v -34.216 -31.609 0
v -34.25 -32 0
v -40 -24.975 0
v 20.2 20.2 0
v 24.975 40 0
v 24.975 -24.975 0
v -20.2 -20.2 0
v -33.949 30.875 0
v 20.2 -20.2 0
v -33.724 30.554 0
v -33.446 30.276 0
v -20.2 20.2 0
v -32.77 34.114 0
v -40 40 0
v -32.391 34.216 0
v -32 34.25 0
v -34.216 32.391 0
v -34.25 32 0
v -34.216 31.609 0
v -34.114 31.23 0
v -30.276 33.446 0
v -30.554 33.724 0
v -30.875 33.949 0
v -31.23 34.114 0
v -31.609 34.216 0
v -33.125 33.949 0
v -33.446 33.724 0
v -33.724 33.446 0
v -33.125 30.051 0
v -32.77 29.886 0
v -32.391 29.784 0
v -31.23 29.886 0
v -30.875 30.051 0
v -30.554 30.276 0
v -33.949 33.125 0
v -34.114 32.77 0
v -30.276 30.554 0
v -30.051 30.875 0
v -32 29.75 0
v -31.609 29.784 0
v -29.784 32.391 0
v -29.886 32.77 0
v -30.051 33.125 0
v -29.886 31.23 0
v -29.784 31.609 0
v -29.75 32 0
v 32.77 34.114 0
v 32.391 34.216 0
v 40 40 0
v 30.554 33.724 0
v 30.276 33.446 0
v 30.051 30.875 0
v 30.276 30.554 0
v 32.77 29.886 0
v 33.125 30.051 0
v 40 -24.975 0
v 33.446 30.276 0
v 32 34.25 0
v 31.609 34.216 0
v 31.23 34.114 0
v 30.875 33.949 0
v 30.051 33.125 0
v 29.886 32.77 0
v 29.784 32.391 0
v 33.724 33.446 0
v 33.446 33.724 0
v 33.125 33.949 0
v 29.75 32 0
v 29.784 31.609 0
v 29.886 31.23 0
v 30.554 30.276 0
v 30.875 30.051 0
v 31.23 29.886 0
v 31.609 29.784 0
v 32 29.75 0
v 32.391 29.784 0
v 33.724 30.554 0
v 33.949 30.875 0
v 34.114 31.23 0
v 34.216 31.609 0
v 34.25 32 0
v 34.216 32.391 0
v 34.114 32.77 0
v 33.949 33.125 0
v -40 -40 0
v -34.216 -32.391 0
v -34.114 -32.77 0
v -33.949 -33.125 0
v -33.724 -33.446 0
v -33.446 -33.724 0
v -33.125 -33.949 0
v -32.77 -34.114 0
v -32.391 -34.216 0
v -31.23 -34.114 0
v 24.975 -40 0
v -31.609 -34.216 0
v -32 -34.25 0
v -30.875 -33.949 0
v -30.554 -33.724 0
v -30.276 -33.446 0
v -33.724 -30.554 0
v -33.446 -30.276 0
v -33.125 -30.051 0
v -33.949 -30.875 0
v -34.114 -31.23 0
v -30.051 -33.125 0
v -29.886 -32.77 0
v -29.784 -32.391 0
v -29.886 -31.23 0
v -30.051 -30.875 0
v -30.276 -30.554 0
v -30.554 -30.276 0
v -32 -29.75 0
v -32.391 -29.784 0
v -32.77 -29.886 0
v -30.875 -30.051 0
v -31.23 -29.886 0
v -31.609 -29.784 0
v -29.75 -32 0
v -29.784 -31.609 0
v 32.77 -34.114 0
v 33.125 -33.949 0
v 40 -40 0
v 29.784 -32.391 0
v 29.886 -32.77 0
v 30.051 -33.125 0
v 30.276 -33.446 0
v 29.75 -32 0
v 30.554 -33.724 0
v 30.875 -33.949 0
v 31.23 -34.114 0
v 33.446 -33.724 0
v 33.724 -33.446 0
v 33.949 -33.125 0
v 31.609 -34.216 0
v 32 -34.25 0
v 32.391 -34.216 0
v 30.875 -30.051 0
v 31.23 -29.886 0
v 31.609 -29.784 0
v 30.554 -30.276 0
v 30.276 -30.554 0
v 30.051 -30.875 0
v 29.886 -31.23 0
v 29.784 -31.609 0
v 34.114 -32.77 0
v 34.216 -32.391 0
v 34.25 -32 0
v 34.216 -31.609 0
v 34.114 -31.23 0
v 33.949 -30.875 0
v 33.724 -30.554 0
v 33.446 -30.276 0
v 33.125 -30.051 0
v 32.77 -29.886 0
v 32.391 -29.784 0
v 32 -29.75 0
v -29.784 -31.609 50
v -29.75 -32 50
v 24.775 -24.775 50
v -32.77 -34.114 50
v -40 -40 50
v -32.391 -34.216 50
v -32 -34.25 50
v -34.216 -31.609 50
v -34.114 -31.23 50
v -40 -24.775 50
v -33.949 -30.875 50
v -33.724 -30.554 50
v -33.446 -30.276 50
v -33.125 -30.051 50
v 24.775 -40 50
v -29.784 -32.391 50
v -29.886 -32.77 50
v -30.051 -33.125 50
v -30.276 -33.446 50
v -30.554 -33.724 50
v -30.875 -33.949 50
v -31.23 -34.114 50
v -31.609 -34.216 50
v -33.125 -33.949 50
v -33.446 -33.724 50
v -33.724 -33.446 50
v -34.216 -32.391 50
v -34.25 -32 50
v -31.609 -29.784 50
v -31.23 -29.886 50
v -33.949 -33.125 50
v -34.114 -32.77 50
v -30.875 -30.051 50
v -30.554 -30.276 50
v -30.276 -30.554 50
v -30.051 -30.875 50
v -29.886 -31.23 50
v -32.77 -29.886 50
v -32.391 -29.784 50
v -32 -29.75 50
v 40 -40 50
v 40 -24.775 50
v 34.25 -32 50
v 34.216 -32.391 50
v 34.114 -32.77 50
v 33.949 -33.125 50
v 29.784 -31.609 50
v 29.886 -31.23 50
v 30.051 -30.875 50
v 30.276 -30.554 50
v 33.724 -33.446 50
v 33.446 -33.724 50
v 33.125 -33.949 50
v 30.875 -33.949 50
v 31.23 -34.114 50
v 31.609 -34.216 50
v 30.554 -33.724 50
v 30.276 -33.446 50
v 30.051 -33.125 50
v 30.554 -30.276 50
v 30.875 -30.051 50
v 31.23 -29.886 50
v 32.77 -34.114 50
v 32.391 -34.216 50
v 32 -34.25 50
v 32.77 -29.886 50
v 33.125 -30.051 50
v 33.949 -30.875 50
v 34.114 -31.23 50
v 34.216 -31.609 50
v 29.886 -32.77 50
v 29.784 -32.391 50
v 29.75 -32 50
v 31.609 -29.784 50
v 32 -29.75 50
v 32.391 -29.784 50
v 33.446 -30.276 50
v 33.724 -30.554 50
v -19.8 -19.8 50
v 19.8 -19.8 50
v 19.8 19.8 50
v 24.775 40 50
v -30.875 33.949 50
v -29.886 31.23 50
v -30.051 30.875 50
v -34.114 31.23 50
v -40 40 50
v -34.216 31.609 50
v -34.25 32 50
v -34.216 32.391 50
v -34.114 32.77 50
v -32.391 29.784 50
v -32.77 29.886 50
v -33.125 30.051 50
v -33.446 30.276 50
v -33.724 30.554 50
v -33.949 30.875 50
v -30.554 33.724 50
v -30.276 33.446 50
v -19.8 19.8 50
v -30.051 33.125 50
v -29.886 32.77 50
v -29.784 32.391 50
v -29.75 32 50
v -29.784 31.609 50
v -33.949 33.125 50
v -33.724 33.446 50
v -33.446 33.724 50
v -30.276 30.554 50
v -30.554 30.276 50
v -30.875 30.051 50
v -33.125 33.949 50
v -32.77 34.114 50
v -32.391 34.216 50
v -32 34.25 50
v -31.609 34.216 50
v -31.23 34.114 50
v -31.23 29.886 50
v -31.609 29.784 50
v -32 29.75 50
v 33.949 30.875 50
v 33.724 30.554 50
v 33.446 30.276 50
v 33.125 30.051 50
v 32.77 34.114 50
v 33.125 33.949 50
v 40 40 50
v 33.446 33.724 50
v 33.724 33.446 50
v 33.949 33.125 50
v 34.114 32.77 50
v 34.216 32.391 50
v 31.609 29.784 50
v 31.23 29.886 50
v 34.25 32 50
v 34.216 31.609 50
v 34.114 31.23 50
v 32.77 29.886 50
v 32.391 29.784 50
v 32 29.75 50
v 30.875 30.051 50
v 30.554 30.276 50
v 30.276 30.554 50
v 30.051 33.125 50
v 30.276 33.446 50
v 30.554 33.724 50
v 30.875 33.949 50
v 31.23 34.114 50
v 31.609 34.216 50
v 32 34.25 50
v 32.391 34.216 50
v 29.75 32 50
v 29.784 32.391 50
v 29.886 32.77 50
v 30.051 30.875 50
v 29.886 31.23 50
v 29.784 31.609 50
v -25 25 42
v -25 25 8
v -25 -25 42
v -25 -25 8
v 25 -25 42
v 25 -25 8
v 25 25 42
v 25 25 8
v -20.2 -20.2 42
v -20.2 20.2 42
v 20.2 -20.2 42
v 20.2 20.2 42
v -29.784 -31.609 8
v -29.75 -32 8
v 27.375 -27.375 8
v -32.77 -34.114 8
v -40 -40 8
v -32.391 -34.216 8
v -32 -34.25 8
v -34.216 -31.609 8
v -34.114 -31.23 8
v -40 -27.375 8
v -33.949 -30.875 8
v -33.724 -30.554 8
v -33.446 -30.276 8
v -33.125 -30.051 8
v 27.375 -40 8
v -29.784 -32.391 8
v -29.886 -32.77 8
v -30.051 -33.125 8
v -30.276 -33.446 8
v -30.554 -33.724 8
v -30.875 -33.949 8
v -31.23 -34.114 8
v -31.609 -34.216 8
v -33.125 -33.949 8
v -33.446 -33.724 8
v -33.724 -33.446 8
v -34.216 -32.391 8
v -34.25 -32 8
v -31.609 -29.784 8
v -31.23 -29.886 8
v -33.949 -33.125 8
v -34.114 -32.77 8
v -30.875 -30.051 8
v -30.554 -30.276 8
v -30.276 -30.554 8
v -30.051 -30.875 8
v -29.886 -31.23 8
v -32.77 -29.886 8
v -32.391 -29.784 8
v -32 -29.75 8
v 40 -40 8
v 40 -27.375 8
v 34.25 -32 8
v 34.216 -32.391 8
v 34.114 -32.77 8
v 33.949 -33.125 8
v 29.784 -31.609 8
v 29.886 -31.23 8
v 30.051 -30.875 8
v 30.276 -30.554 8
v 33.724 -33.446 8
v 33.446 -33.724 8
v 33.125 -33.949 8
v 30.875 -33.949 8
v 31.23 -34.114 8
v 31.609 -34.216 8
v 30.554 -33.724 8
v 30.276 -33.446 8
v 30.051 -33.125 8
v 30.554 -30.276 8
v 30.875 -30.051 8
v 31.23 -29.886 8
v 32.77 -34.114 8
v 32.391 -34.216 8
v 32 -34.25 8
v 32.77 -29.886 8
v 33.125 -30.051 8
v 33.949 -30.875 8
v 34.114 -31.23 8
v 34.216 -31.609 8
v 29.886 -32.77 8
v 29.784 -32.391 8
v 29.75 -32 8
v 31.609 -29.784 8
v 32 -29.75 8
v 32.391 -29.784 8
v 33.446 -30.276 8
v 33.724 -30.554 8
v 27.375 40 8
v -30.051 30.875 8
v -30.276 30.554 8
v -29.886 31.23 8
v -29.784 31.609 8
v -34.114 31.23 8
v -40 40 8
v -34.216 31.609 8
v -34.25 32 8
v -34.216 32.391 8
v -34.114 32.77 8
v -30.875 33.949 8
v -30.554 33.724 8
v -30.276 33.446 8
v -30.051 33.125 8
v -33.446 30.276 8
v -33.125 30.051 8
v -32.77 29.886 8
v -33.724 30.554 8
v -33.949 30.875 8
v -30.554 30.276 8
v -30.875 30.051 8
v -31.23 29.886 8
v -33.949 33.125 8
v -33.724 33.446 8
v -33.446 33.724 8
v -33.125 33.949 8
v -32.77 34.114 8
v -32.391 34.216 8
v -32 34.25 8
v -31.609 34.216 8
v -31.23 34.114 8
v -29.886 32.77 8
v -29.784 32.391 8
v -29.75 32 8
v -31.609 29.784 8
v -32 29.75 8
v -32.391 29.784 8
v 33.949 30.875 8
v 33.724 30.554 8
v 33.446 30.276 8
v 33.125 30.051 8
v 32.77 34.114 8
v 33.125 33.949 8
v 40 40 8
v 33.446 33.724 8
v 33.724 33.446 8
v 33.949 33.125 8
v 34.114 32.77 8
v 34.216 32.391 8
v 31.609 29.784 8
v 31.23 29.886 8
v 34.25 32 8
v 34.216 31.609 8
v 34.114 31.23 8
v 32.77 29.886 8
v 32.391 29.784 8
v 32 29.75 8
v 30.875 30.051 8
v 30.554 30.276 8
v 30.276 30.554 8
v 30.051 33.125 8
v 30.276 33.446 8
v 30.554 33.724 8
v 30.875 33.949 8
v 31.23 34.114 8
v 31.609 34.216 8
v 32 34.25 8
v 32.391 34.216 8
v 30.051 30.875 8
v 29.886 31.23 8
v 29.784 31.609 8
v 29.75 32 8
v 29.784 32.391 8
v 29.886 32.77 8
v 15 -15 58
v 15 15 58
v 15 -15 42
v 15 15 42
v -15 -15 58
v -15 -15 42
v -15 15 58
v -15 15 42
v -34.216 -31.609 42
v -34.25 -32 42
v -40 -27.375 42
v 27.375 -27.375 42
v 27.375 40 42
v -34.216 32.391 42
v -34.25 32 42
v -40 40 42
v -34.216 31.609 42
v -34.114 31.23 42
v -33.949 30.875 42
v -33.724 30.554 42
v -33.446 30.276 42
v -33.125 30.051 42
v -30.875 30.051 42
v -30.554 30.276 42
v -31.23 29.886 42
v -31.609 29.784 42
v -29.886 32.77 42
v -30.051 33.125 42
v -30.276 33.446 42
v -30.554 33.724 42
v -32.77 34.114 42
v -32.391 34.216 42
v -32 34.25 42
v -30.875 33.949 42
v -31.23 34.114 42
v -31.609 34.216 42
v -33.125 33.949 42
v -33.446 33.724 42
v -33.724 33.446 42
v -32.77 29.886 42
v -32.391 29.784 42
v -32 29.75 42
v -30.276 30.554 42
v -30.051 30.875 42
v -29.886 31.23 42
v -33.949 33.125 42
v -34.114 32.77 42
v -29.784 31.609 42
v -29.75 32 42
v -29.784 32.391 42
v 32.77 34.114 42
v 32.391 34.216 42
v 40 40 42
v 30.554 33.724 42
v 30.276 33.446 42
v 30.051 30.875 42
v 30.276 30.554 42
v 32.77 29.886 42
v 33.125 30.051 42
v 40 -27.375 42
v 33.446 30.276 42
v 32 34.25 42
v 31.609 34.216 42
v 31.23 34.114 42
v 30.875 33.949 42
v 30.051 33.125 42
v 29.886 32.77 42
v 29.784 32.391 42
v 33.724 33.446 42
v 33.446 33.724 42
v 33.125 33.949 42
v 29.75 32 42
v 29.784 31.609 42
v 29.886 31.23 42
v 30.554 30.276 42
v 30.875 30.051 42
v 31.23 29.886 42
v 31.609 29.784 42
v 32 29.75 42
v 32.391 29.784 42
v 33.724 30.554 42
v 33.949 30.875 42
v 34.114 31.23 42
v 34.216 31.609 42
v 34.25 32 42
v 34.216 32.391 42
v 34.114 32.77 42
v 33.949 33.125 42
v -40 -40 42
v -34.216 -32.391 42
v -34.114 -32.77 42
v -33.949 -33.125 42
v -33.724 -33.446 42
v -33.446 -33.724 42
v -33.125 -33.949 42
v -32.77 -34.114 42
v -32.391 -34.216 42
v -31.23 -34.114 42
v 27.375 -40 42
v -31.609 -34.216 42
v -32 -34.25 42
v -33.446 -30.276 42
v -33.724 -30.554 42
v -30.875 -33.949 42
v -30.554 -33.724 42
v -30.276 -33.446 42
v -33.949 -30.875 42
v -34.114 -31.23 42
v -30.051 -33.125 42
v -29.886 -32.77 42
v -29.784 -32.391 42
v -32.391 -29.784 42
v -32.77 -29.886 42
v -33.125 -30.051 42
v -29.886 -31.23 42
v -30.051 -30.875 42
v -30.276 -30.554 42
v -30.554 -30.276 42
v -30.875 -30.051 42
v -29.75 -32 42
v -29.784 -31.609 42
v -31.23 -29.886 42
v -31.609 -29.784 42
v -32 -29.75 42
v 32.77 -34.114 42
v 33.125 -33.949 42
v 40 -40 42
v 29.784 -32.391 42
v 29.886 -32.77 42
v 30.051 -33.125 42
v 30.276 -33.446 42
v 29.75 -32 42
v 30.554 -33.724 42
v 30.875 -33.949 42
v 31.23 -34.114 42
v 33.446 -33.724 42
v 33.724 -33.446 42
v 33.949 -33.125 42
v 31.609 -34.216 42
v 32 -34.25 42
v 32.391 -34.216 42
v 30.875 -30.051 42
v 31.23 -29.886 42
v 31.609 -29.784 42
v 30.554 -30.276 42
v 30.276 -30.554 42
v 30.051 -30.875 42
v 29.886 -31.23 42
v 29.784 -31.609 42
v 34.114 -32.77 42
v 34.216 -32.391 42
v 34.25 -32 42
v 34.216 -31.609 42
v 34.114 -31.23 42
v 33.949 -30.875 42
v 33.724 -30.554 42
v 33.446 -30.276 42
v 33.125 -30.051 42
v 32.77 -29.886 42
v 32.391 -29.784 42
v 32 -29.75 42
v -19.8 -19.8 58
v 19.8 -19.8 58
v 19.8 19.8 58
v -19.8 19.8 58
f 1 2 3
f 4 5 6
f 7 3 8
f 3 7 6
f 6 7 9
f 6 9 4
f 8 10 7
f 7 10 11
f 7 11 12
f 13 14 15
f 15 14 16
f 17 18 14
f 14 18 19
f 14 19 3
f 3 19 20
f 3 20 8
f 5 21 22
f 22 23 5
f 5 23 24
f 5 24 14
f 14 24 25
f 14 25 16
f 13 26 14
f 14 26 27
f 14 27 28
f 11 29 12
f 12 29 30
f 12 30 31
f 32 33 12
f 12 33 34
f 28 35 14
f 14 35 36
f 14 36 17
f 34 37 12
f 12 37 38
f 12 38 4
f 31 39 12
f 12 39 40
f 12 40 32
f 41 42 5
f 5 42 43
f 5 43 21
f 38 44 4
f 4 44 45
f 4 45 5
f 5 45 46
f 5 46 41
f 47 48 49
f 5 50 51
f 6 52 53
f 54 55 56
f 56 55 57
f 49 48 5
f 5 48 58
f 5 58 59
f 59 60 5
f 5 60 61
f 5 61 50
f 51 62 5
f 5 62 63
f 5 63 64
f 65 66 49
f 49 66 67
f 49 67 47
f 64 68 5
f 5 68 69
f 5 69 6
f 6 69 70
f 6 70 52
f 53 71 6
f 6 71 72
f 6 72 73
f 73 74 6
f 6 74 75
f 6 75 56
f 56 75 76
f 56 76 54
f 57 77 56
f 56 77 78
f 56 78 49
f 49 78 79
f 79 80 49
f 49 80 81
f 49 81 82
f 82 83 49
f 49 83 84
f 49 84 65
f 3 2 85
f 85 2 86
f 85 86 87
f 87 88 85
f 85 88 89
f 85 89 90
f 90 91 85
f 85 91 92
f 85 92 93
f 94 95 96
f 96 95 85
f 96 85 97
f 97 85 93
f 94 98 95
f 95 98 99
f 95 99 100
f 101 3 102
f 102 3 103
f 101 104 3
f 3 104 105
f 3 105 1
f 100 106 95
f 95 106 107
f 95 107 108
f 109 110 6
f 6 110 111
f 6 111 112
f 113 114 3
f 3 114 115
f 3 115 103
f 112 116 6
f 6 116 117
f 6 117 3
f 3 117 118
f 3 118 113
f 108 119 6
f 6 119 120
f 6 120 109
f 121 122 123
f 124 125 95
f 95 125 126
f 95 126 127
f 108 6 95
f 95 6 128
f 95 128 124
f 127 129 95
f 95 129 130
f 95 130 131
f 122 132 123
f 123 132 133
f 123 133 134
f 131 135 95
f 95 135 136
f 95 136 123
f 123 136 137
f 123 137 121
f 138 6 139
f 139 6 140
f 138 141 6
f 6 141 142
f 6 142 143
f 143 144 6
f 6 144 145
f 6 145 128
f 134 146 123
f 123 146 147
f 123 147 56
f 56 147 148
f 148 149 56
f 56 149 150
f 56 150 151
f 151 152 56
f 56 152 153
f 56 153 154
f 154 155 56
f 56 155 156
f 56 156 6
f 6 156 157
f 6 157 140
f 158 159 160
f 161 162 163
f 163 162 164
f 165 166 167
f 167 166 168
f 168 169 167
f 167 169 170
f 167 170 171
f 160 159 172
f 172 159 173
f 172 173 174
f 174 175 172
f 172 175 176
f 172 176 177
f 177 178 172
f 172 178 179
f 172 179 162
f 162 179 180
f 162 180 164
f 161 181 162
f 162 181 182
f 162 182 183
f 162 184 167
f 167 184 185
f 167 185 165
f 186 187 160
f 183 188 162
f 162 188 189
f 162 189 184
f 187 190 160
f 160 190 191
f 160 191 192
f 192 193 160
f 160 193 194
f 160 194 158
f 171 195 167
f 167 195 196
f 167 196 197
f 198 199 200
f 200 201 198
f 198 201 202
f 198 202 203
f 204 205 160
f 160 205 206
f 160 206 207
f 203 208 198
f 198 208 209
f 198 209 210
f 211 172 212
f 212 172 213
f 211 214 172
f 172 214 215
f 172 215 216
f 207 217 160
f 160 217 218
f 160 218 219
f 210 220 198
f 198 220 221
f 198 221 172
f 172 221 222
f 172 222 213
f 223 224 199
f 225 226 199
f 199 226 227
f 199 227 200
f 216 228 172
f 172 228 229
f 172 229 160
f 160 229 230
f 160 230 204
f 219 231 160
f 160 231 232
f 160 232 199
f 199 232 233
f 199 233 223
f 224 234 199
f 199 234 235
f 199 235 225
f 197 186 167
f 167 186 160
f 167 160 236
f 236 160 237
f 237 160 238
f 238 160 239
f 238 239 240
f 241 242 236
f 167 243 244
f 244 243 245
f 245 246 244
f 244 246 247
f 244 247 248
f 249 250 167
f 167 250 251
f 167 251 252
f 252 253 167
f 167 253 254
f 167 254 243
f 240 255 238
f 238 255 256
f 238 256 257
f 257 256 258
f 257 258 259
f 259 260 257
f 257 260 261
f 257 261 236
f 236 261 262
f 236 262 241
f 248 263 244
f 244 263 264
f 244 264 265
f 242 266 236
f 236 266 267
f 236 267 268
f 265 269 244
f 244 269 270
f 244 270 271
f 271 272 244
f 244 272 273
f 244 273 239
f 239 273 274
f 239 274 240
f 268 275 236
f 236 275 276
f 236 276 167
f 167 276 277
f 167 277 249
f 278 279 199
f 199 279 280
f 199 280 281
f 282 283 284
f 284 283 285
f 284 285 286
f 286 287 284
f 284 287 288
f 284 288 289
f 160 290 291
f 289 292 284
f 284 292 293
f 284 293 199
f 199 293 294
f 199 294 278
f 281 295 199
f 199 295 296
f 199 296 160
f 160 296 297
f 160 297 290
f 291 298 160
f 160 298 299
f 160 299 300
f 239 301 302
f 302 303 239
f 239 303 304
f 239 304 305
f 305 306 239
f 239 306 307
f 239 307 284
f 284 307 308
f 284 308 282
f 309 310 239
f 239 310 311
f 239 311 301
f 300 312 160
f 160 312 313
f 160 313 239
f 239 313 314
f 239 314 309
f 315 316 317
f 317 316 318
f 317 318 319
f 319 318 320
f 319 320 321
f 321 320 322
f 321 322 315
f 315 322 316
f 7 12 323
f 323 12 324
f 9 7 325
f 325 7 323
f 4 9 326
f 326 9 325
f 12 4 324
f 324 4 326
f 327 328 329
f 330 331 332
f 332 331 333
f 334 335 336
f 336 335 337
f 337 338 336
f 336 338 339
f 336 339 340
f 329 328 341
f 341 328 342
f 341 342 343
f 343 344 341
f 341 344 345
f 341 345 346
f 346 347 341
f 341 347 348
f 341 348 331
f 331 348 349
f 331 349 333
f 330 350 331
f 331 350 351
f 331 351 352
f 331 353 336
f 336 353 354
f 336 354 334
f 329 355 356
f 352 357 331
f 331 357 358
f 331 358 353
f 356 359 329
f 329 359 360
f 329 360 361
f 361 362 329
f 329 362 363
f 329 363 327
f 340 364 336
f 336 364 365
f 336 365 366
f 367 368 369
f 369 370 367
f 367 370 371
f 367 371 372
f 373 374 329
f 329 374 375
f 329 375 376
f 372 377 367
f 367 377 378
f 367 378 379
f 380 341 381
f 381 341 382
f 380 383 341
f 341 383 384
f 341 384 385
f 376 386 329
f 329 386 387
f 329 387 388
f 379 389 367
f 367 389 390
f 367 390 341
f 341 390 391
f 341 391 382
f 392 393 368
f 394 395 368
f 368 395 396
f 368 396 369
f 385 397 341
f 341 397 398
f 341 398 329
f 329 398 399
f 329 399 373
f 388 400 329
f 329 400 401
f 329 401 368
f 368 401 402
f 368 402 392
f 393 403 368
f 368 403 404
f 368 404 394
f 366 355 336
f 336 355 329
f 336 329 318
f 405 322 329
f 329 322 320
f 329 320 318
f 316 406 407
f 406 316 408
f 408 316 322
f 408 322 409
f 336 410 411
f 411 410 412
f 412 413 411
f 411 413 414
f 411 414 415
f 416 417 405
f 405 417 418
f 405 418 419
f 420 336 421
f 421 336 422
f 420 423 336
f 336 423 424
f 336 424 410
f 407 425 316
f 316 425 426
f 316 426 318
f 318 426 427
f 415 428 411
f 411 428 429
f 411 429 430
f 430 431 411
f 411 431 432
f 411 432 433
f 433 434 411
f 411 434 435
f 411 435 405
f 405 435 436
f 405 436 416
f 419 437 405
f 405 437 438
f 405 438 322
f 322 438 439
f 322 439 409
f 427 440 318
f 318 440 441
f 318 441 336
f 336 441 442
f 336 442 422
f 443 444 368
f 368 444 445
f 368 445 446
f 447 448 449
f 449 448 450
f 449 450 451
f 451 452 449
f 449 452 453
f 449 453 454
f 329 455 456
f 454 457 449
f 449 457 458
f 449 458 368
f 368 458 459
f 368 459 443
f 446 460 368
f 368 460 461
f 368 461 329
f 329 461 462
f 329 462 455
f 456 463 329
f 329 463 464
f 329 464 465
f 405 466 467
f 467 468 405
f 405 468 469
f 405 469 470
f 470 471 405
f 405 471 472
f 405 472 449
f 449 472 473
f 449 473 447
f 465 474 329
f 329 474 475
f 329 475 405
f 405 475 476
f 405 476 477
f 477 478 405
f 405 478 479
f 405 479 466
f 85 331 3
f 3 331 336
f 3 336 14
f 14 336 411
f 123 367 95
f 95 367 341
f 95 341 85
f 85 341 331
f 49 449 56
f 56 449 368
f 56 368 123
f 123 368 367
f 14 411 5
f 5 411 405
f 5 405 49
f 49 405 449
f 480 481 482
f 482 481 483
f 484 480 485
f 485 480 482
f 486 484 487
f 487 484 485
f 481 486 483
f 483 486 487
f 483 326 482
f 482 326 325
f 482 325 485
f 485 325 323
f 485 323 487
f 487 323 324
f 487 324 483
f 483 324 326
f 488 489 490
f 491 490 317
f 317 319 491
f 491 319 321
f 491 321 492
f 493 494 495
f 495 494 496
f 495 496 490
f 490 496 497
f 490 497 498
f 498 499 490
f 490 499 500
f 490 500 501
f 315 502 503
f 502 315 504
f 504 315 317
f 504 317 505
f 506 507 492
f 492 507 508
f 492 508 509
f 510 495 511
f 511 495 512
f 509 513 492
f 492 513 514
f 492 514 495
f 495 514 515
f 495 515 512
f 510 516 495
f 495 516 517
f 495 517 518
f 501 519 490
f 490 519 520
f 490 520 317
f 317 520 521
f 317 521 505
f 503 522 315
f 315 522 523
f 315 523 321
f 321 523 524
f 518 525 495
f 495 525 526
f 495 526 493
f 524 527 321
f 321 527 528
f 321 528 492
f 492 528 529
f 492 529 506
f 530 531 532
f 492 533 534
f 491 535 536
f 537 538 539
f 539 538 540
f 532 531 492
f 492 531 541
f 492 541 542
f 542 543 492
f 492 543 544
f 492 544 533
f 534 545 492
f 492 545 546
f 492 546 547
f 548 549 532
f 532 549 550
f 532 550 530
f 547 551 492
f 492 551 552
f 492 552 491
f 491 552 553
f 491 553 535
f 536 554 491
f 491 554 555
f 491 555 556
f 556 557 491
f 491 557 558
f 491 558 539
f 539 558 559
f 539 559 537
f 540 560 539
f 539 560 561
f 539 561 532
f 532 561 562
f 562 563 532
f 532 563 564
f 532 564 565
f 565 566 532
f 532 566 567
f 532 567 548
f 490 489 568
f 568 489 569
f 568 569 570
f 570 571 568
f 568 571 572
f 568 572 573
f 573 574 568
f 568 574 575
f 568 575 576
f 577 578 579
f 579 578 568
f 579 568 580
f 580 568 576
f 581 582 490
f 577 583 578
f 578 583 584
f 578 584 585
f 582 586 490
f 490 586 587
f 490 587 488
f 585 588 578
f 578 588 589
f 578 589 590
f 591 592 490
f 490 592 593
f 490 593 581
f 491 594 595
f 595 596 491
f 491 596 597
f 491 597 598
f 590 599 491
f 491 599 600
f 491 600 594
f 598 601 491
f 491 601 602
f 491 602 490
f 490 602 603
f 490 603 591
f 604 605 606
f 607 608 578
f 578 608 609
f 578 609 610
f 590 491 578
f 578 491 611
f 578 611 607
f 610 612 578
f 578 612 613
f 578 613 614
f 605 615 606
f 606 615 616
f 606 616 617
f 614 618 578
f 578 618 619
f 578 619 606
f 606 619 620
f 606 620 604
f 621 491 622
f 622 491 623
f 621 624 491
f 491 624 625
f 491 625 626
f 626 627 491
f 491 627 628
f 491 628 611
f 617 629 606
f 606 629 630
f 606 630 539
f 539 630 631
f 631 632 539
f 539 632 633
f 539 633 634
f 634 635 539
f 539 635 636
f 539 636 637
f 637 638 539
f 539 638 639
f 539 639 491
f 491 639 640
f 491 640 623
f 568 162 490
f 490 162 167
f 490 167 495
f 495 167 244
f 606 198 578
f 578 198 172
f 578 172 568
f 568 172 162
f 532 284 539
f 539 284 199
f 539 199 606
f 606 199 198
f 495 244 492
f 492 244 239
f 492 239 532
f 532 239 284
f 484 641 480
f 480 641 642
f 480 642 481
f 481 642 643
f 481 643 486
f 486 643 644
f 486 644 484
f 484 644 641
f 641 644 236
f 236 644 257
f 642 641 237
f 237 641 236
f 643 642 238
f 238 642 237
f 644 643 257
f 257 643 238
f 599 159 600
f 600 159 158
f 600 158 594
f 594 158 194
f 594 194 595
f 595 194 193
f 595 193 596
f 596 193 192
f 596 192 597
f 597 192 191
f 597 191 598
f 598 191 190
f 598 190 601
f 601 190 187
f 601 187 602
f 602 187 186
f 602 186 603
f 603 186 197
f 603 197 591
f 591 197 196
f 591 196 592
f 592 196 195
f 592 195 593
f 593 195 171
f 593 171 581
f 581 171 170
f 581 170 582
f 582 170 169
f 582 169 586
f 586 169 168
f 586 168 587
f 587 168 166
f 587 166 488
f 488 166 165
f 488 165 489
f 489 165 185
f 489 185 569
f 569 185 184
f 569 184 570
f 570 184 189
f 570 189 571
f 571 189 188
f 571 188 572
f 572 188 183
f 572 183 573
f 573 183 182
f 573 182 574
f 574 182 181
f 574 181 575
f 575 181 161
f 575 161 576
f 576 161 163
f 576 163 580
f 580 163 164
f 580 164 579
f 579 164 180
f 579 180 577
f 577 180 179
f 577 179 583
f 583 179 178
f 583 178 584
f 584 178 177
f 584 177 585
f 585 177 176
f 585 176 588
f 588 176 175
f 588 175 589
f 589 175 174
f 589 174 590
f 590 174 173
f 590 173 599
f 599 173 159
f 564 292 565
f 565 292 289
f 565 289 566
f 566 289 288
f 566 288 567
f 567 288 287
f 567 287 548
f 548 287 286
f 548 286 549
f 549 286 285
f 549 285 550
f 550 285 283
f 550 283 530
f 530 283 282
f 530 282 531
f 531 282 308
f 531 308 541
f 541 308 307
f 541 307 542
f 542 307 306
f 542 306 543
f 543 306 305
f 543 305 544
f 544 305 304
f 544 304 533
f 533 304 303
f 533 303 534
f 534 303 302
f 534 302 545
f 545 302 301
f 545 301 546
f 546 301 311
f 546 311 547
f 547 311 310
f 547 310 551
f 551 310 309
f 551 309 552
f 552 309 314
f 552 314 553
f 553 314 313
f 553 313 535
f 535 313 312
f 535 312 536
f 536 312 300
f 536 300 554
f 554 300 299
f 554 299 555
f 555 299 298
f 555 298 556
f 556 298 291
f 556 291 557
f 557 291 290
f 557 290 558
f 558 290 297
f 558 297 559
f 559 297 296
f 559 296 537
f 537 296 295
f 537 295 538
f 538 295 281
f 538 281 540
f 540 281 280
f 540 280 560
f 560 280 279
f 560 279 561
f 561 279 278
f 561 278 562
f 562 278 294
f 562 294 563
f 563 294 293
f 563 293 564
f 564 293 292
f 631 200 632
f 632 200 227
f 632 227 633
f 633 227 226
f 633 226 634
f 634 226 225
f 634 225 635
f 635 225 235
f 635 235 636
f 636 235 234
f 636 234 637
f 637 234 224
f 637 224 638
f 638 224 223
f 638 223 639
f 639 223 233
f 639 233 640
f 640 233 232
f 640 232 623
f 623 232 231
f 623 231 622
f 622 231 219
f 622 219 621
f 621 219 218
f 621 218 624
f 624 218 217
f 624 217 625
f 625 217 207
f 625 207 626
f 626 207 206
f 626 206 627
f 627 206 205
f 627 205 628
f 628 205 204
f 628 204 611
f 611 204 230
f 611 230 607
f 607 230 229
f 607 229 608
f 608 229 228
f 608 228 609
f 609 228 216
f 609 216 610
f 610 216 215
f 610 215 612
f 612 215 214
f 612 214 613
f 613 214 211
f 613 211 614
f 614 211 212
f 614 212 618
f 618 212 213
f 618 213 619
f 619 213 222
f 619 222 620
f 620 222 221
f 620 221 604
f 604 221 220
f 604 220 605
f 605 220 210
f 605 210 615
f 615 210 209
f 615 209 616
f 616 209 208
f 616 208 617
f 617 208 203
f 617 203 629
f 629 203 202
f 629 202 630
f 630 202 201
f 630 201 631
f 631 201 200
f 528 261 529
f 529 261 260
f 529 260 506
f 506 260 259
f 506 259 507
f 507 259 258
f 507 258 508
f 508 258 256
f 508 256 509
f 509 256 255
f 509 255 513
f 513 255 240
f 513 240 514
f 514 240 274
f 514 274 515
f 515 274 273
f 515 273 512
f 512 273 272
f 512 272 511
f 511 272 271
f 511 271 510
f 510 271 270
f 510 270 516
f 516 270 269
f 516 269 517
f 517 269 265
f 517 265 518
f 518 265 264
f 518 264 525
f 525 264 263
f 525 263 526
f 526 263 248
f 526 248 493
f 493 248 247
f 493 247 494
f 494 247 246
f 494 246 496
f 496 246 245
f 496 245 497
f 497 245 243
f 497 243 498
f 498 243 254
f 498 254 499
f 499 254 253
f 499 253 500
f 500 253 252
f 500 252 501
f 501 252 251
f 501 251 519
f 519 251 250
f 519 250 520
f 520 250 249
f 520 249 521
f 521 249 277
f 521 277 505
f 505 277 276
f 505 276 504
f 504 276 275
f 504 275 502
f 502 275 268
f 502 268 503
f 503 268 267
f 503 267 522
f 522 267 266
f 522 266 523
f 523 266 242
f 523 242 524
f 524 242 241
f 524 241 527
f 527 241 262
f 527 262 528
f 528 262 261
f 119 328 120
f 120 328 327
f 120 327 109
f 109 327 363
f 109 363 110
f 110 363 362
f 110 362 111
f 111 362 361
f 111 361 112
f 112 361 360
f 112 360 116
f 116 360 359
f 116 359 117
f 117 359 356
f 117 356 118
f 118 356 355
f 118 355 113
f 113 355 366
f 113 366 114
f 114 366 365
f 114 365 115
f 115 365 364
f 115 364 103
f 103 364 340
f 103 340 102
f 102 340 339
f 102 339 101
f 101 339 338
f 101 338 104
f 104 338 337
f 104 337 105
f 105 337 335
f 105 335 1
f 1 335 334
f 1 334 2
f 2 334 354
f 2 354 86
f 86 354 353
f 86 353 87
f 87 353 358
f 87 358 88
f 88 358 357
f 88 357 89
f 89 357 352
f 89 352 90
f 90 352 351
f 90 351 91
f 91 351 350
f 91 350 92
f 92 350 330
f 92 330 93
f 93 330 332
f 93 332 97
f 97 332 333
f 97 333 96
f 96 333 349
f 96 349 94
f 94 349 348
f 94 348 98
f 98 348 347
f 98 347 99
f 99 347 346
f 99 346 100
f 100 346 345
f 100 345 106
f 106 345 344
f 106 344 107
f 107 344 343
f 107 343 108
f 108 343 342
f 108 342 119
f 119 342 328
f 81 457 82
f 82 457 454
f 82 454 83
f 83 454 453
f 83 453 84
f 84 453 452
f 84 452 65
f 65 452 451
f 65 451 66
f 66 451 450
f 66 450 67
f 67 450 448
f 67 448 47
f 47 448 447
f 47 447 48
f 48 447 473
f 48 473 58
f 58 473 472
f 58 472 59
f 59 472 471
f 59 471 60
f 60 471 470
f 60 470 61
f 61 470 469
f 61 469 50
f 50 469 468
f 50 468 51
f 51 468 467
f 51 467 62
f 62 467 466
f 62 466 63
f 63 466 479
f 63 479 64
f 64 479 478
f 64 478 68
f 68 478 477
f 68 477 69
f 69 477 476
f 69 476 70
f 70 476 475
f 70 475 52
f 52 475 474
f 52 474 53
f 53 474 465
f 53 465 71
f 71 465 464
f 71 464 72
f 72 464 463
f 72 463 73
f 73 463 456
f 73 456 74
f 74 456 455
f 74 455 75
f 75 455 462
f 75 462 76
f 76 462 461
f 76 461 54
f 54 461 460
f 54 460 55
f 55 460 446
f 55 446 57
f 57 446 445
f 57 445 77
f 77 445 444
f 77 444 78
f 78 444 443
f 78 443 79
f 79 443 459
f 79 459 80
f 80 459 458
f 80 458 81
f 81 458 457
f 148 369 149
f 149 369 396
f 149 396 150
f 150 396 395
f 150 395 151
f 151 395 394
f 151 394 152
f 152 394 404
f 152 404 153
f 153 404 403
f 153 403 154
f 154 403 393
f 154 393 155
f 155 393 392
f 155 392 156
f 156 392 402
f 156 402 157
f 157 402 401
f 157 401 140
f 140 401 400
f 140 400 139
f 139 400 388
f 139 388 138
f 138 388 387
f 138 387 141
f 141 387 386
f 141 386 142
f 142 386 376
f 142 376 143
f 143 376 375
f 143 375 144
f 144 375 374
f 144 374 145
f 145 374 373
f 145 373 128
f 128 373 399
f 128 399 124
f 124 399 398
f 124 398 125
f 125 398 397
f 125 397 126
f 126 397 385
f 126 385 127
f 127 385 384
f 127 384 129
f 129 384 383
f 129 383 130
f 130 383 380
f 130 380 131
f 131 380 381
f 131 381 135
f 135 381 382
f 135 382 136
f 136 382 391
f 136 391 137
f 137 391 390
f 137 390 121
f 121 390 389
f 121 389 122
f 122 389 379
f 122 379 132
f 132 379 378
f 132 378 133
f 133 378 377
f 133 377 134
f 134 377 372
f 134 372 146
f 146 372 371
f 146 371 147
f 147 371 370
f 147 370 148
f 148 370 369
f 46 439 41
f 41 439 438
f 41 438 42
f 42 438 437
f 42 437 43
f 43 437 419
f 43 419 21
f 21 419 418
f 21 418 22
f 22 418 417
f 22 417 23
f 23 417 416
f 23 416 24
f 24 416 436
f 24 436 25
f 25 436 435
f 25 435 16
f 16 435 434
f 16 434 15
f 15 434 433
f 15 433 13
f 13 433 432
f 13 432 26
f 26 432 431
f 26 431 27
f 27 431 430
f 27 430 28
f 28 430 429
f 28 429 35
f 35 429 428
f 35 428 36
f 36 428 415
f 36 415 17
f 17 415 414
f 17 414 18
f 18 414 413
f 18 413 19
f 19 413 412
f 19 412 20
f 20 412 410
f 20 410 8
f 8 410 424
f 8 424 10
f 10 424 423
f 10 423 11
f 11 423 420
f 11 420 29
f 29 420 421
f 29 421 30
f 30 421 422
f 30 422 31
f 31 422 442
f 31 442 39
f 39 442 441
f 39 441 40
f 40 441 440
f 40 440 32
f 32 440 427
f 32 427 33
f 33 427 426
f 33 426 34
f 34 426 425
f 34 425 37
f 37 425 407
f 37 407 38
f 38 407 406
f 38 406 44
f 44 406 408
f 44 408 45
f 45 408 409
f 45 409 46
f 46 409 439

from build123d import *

# Parameters (mm, degrees)
SKETCH_1_W                = 50
SKETCH_1_H                = 50
SKETCH_1_W_2              = 40.4
SKETCH_1_H_2              = 40.4
EXTRUDE_50_4P8_DEPTH      = 50
SKETCH_2_W                = 80
SKETCH_2_H                = 80
SKETCH_2_W_2              = 40.4
SKETCH_2_H_2              = 40.4
EXTRUDE_379_DEPTH         = 8
EXTRUDE_START             = 42
SKETCH_3_W                = 80
SKETCH_3_H                = 80
SKETCH_3_W_2              = 30
SKETCH_3_H_2              = 30
EXTRUDE_483_DEPTH         = 8
EXTRUDE_START_2           = 50
SKETCH_4_W                = 39.6
SKETCH_4_H                = 39.6
SKETCH_4_W_2              = 30
SKETCH_4_H_2              = 30
EXTRUDE_39P6_DEPTH        = 8
CUT_EXTRUDE_M4_DEPTH      = 82.018516402
CUT_EXTRUDE_M4_DEPTH_BACK = 82.018516402
SKETCH_5_R                = 2.25


with BuildPart() as part:
    # 草图1 → 50方管壁厚4p8 (new body)
    with BuildSketch(Plane.XY):
        Rectangle(SKETCH_1_W, SKETCH_1_H)
        Rectangle(SKETCH_1_W_2, SKETCH_1_H_2, mode=Mode.SUBTRACT)
    extrude(amount=EXTRUDE_50_4P8_DEPTH)

    # 草图2 → Extrude 379 (add)
    with BuildSketch(Plane.XY):
        Rectangle(SKETCH_2_W, SKETCH_2_H)
        Rectangle(SKETCH_2_W_2, SKETCH_2_H_2, mode=Mode.SUBTRACT)
    extrude(amount=EXTRUDE_379_DEPTH)

    # 草图3 → Extrude 483 (add)
    with BuildSketch(Plane.XY.offset(EXTRUDE_START)):
        Rectangle(SKETCH_3_W, SKETCH_3_H)
        Rectangle(SKETCH_3_W_2, SKETCH_3_H_2, mode=Mode.SUBTRACT)
    extrude(amount=EXTRUDE_483_DEPTH)

    # 草图4 → 定位凸台39p6 (add)
    with BuildSketch(Plane.XY.offset(EXTRUDE_START_2)):
        Rectangle(SKETCH_4_W, SKETCH_4_H)
        Rectangle(SKETCH_4_W_2, SKETCH_4_H_2, mode=Mode.SUBTRACT)
    extrude(amount=EXTRUDE_39P6_DEPTH)

    # 草图5 → 四个M4法兰通孔 (cut, two sides: drawn at the far end of the back side and taken through both)
    with BuildSketch(Plane.XY.offset(-CUT_EXTRUDE_M4_DEPTH_BACK)):
        with Locations((-32, -32)):
            Circle(SKETCH_5_R)
        with Locations((-32, 32)):
            Circle(SKETCH_5_R)
        with Locations((32, -32)):
            Circle(SKETCH_5_R)
        with Locations((32, 32)):
            Circle(SKETCH_5_R)
    extrude(amount=CUT_EXTRUDE_M4_DEPTH + CUT_EXTRUDE_M4_DEPTH_BACK, mode=Mode.SUBTRACT)


solid = part.part
